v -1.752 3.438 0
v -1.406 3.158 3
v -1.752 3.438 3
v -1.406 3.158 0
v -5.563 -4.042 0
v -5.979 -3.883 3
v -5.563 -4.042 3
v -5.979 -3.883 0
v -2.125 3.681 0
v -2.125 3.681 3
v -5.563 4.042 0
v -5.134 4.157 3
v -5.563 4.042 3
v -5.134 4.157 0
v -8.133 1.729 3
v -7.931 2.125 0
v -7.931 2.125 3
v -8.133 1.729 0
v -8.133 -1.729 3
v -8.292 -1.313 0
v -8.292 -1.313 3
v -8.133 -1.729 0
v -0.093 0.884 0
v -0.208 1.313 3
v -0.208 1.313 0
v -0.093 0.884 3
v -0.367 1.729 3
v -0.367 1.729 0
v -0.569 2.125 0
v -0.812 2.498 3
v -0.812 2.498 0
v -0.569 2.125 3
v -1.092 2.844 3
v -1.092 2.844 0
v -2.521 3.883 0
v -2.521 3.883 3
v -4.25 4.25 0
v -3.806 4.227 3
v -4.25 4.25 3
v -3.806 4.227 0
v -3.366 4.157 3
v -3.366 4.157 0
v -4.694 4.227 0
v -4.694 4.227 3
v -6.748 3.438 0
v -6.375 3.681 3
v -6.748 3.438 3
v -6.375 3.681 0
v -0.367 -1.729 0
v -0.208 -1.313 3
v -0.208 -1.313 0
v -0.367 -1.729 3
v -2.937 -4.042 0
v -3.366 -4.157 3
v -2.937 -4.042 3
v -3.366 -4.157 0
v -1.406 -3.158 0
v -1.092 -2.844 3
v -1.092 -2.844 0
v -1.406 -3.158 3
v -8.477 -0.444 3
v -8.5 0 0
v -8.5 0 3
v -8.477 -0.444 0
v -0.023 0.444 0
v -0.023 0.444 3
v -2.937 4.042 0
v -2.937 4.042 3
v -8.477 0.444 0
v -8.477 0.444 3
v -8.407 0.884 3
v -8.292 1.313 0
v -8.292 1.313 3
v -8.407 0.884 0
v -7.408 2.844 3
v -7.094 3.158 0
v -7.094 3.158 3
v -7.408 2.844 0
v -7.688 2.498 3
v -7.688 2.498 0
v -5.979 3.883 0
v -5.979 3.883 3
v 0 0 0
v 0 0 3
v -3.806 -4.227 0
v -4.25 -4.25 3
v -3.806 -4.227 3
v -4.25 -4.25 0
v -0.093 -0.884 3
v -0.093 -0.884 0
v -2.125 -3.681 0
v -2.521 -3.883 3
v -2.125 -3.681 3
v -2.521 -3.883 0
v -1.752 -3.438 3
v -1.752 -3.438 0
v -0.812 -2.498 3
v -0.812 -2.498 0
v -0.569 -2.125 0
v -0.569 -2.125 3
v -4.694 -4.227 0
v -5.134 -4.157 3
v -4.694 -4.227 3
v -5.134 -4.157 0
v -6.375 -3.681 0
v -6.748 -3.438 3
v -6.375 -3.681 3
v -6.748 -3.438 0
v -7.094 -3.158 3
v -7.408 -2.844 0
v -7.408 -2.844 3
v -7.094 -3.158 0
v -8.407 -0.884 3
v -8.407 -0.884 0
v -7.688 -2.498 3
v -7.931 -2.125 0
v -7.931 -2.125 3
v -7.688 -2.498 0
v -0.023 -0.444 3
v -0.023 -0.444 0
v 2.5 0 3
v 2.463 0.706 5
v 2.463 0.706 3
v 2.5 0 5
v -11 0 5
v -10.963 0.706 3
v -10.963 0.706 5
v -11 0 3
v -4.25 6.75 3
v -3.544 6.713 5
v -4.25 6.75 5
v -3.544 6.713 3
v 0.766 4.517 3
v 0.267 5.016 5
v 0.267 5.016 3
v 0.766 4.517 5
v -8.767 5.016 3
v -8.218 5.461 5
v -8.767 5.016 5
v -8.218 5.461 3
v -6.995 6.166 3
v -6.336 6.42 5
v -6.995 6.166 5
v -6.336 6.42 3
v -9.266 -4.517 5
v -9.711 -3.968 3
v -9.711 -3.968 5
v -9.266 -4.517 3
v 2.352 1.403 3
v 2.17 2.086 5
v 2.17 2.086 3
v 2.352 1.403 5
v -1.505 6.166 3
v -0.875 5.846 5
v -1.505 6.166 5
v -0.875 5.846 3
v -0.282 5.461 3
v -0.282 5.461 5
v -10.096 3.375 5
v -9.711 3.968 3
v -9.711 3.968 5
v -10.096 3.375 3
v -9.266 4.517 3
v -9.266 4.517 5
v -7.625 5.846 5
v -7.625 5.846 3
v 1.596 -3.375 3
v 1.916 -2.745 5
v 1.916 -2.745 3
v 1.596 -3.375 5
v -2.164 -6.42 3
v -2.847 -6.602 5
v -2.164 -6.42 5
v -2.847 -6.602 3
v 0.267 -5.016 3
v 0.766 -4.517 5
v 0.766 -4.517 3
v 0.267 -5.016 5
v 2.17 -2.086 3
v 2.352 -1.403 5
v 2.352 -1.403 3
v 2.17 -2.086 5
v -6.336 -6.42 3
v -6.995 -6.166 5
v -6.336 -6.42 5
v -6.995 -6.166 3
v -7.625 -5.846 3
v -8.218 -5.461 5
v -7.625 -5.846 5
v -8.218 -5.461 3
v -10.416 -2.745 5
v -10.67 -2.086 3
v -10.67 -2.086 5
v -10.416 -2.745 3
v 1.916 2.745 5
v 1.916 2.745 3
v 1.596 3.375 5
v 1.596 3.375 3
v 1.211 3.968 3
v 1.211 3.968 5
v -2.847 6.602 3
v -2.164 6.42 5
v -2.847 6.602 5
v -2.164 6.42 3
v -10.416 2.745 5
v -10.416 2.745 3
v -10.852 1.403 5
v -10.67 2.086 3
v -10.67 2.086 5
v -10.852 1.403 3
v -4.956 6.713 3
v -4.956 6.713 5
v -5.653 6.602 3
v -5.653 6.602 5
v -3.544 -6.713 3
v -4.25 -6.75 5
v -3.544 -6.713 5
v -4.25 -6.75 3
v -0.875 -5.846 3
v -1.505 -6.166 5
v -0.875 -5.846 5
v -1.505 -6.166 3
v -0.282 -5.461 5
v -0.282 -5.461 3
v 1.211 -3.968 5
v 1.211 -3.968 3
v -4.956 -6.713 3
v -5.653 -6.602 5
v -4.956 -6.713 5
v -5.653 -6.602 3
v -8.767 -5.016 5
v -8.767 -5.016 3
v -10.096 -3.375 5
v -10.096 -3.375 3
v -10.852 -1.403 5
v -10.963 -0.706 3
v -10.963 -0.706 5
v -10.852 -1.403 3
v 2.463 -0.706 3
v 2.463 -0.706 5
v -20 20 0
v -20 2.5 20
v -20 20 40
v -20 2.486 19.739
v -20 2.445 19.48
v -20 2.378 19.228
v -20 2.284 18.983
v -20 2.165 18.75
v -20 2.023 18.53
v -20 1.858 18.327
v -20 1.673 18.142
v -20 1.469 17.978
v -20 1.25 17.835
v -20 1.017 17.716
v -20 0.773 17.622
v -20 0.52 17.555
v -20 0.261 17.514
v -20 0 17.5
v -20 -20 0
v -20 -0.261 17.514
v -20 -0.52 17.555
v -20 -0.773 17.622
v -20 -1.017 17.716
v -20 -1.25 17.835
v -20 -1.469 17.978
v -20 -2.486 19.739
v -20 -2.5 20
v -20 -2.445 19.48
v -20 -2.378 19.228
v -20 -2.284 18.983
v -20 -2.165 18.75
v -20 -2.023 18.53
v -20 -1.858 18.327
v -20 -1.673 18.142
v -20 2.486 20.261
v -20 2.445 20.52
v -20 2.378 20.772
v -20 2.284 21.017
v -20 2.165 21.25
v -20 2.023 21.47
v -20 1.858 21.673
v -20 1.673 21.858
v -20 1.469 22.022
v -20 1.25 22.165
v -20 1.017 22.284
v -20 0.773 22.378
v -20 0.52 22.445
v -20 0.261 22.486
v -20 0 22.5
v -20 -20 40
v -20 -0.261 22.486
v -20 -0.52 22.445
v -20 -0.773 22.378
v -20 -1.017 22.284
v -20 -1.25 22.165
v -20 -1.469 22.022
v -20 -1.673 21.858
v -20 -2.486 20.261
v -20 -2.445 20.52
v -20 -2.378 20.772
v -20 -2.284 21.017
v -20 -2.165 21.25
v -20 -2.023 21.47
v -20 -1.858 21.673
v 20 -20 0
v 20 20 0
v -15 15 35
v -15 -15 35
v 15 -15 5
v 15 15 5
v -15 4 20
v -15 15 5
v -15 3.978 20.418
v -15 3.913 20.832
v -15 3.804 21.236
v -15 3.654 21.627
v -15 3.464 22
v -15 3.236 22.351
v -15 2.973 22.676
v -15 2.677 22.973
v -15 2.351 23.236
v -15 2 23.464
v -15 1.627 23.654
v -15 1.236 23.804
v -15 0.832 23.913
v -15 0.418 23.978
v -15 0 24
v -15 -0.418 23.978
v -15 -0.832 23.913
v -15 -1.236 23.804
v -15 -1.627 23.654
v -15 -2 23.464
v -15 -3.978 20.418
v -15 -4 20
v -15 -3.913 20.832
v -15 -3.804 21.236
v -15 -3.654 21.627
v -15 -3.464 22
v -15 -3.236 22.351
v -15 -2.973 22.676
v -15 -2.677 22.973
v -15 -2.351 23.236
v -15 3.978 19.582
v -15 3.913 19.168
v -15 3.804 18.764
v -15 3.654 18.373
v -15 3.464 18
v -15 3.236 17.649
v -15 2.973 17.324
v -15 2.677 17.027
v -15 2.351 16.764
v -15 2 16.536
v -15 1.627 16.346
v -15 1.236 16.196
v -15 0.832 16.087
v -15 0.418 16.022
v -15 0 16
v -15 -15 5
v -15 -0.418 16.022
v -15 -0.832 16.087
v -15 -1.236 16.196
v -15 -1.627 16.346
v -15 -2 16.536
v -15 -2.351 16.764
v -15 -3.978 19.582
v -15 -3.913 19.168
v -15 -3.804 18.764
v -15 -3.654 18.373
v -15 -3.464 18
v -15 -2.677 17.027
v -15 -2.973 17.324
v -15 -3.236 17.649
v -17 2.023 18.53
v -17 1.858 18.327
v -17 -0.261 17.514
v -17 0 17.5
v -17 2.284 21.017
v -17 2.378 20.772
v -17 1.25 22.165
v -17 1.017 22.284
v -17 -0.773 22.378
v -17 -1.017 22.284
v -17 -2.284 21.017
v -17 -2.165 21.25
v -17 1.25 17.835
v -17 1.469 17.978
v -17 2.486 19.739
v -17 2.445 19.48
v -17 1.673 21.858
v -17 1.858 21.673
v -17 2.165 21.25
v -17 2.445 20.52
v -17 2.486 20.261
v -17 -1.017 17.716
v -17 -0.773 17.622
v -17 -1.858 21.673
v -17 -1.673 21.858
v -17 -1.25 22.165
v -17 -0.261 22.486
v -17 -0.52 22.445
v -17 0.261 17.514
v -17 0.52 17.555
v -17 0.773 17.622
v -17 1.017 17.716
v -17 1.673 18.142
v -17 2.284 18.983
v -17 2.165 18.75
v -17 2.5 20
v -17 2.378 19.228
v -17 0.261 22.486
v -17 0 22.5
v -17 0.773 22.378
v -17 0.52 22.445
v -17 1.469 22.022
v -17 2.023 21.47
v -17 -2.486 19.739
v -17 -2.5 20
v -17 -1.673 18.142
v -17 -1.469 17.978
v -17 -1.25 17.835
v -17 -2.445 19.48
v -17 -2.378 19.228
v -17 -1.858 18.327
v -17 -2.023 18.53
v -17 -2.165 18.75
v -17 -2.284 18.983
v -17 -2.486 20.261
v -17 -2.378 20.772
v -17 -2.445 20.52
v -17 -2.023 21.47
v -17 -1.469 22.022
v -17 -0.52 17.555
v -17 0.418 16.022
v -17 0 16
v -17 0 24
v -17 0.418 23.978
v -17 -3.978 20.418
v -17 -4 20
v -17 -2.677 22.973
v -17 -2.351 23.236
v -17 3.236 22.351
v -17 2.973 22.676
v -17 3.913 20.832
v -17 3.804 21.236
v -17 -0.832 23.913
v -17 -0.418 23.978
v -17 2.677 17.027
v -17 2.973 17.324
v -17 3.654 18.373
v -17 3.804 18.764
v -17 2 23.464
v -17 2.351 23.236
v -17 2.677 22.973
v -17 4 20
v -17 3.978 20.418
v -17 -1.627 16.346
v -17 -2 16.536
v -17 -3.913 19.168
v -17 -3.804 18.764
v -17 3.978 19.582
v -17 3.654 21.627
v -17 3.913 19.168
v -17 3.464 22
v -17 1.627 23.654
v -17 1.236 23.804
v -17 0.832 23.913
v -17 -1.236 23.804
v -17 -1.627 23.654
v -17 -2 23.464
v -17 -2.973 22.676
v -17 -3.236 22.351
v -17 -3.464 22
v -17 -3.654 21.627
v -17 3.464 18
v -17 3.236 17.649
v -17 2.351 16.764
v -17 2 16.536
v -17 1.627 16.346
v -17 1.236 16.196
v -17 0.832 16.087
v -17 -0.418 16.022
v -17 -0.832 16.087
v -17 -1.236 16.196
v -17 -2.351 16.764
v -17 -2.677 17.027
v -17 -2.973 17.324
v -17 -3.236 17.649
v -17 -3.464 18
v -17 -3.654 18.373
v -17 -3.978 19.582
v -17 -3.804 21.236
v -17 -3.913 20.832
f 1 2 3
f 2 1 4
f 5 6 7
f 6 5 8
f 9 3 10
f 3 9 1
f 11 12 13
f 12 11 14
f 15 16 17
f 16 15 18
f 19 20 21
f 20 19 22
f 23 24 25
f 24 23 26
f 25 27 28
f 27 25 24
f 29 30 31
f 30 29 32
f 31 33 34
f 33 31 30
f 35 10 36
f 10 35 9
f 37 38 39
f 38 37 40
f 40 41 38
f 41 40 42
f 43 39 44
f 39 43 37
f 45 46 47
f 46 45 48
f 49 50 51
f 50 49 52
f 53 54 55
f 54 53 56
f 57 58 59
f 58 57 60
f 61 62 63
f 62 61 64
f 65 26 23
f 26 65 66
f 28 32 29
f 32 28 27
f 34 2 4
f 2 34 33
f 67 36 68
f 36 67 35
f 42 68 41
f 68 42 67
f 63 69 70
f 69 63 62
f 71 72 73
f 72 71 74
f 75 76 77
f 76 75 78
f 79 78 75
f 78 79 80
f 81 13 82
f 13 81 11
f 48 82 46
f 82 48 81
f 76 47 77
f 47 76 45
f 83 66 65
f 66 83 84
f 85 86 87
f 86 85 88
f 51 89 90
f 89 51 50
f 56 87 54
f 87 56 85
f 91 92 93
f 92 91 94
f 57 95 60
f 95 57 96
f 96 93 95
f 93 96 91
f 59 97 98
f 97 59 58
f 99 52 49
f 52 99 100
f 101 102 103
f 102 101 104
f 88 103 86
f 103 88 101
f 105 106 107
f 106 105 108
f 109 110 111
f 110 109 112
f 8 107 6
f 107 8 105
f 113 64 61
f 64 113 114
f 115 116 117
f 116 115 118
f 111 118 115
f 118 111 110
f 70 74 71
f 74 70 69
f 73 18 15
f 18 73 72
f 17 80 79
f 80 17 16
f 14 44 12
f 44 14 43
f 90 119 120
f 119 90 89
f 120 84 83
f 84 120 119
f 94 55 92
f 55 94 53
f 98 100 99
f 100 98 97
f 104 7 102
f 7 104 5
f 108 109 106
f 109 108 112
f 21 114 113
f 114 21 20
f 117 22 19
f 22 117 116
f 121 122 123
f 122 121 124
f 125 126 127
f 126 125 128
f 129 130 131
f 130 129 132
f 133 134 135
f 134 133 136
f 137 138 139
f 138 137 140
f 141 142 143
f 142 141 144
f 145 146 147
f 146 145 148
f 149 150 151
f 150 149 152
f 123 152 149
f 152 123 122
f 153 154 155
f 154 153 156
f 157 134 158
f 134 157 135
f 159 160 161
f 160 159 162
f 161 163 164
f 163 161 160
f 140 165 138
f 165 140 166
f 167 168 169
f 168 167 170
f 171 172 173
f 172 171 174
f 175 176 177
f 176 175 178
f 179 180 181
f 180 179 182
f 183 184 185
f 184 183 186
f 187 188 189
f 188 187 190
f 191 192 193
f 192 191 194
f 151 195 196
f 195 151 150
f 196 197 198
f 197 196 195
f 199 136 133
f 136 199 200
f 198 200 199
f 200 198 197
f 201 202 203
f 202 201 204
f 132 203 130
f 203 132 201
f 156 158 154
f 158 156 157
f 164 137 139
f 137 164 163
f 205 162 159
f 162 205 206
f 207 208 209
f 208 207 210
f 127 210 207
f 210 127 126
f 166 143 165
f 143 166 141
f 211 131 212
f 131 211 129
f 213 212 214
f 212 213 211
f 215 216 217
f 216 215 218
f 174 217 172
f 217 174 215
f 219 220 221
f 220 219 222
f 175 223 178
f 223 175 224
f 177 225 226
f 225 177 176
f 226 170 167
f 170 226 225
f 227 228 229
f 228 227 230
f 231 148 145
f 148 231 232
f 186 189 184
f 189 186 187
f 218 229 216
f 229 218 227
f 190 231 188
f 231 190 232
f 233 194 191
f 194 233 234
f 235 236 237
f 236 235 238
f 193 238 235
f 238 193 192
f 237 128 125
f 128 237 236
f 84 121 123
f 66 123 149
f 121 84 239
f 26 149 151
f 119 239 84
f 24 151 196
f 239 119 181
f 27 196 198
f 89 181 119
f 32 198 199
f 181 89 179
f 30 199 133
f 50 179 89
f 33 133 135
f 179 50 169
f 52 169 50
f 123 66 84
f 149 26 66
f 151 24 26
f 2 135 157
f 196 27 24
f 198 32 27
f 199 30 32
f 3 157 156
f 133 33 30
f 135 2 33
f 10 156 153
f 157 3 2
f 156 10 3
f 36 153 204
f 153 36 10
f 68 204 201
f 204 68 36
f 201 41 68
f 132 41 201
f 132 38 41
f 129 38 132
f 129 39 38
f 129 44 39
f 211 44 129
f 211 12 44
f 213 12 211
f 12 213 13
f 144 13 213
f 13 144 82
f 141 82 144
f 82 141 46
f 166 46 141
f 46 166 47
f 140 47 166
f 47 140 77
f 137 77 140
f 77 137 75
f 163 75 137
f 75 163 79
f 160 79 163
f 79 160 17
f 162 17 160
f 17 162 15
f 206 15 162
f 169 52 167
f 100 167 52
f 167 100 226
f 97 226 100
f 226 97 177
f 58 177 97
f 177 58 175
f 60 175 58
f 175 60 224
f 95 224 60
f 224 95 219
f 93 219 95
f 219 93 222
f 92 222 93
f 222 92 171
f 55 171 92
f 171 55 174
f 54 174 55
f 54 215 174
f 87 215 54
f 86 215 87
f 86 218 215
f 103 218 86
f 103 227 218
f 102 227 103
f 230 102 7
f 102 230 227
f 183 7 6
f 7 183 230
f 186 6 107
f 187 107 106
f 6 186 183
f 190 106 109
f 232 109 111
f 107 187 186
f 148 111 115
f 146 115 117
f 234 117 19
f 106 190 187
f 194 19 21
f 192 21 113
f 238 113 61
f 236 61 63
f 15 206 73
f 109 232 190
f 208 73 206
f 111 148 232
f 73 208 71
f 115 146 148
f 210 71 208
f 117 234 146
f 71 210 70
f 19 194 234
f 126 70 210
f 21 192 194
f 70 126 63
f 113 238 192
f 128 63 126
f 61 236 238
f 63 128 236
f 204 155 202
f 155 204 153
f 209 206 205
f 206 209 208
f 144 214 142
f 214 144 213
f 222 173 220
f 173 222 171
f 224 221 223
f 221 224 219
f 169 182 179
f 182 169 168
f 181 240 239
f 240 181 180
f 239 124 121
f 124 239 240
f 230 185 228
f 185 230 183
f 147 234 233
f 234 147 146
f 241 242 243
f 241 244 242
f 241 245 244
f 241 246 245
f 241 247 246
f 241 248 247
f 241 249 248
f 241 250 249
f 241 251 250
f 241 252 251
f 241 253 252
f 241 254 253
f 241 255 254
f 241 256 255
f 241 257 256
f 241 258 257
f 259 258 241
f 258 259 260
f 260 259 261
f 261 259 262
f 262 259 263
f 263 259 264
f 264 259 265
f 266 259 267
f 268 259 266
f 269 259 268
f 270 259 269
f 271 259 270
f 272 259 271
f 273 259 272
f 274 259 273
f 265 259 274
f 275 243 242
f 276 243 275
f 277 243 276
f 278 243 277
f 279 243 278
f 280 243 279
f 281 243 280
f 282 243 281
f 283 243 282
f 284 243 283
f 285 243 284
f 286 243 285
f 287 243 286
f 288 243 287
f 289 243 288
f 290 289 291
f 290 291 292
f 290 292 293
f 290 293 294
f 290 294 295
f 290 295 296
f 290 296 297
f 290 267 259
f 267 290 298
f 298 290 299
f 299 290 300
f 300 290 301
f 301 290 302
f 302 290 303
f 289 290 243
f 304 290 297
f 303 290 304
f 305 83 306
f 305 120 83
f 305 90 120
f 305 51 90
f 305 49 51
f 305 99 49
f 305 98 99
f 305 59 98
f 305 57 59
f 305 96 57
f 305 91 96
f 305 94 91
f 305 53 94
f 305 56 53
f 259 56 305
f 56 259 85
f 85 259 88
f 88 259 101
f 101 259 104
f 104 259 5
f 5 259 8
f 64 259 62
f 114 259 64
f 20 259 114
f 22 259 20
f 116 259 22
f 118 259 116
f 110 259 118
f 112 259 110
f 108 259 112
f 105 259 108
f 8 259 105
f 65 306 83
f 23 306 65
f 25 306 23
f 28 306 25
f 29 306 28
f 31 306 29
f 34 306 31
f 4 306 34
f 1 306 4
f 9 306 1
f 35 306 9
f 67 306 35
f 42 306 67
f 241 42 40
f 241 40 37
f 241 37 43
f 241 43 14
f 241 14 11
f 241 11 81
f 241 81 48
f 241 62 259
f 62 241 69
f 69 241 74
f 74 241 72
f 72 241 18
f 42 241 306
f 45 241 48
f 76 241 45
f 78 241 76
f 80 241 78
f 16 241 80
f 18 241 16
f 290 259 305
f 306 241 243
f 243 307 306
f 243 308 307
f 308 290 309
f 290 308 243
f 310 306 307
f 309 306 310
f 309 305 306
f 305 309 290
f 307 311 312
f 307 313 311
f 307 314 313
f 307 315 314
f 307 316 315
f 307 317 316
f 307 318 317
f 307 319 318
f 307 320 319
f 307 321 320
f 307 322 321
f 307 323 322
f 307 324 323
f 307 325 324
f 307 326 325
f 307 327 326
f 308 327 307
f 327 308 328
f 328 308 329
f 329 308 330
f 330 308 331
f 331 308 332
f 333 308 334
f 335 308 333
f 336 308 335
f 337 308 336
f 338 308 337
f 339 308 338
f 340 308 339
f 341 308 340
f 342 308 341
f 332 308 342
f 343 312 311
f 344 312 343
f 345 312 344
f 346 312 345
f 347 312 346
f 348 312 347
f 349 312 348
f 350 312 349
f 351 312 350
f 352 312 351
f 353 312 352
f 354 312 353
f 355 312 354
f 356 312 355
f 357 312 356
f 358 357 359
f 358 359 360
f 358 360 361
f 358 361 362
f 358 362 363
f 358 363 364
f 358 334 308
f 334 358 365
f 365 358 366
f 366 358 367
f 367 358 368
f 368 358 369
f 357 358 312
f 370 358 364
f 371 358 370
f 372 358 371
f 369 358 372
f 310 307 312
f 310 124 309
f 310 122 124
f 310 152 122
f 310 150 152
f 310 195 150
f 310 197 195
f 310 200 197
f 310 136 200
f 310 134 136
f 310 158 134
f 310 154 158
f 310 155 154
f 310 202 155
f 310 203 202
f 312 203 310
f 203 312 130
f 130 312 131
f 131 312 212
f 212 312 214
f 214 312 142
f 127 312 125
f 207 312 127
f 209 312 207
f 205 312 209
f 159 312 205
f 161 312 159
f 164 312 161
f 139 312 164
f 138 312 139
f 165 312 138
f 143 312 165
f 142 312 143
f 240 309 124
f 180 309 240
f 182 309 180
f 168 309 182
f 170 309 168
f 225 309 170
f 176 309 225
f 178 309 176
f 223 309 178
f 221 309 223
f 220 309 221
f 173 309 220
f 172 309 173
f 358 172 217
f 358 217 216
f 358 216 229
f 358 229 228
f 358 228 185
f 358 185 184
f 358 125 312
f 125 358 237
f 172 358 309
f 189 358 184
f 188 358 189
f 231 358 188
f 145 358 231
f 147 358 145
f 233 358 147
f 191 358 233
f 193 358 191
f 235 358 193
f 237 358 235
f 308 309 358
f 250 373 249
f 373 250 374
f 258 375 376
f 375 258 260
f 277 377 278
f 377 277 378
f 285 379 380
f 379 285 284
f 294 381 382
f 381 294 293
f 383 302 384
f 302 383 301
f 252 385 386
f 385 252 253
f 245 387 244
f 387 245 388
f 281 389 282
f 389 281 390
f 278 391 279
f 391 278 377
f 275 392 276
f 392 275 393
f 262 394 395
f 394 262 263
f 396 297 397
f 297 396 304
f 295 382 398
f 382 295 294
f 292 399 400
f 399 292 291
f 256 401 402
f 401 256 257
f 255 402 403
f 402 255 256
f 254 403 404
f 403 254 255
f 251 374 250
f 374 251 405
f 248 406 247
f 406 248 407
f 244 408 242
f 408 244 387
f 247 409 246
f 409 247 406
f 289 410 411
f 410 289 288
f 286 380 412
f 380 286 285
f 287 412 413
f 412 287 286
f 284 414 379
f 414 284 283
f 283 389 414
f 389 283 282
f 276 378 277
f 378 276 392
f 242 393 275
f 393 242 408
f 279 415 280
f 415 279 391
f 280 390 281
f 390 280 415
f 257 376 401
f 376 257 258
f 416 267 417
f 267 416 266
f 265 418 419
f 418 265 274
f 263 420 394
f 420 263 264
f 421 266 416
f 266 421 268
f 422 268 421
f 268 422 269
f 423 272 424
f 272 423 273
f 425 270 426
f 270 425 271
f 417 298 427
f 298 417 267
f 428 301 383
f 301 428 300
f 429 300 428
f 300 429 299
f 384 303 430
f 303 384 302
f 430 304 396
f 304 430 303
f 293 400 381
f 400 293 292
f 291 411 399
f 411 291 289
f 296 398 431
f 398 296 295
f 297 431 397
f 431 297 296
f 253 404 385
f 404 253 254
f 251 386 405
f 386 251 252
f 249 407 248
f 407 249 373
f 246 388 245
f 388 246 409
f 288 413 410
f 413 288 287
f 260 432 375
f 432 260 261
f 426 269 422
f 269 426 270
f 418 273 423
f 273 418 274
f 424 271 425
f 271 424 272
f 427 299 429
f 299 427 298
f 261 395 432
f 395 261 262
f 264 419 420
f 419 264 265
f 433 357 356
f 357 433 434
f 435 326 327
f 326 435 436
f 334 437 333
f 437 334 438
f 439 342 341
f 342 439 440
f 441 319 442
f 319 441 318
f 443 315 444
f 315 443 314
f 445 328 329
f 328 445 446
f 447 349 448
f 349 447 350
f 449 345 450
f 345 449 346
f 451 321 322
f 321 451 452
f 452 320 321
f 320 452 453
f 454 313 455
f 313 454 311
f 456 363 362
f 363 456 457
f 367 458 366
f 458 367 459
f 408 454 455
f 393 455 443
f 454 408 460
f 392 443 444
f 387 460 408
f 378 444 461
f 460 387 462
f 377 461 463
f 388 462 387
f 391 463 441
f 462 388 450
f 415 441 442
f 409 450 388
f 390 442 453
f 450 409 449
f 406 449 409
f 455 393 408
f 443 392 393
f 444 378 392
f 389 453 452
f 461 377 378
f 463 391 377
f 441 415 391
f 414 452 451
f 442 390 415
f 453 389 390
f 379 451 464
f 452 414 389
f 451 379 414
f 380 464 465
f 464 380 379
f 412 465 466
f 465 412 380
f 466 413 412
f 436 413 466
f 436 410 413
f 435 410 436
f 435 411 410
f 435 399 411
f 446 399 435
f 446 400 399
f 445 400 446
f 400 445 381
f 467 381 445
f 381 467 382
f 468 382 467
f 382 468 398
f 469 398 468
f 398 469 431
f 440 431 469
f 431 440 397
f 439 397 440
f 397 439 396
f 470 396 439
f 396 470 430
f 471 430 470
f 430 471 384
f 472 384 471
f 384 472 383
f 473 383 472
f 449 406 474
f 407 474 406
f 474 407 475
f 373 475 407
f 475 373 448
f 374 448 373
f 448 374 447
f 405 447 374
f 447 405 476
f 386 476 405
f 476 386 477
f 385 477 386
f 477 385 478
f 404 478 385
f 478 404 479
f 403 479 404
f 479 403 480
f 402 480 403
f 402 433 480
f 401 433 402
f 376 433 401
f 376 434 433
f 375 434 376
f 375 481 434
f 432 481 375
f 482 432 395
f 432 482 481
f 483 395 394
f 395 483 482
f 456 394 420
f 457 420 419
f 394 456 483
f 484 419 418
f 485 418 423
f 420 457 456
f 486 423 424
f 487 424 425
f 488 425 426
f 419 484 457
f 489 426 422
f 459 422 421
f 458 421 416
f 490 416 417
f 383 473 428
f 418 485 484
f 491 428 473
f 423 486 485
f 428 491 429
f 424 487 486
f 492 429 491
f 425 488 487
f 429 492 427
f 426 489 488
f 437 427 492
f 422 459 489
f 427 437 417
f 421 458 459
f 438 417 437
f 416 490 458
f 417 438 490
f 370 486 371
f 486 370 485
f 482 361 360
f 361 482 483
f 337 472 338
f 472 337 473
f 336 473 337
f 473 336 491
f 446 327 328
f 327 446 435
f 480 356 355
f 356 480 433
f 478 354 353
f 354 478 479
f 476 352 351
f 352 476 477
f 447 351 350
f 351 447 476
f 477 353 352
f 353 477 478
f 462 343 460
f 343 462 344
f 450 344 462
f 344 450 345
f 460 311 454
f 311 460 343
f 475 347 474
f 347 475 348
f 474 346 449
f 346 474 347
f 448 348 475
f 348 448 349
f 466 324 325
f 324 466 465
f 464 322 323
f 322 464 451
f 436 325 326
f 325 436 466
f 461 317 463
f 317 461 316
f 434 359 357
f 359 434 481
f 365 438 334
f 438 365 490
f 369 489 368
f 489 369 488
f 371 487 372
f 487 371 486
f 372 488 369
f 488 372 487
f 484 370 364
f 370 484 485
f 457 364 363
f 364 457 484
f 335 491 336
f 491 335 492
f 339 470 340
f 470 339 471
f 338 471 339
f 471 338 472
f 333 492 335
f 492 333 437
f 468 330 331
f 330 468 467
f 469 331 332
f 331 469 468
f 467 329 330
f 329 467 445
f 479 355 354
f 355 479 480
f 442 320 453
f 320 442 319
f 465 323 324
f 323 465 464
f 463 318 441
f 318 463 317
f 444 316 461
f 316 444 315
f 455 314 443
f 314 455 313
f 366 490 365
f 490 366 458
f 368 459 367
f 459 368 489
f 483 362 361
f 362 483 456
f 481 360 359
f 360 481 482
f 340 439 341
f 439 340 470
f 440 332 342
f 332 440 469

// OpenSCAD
// Solarhalterung

a = 40;
Dreieck = true;
Doppeldreieck = false;

module Loch() {
    $fn=60;
    cylinder(d=8.5,h=10, center=true);
    translate([0,0,5])
    cylinder(d=13.5,h=10, center=true);
   
}

module Doppeldreieck() {
    
    difference(){
        union() {
            Dreieck();
            translate([0,37,0])
            Dreieck();
        }
        translate([5,17,5])
        cube([a,a-10,a],center=true);
    }
}    

module Dreieck() {
    
    difference() {
        cube([a,a,a],center=true);
        
        rotate([0,-45,0])
        translate([(a+25)/2,0,0])
        cube([a+25,a+25,a+25],center=true);
        
        translate([5,0,5])
        cube([a,a-10,a],center=true);
        
        translate([-4.25,0,-17])
        Loch();
        
        
        rotate([0,90,0])
        translate([0,0,-20])
        cylinder(d=5,h=20,center=true,$fn=60);
        
        rotate([0,90,0])
        translate([0,0,-7])
        cylinder(d=8,h=20,center=true,$fn=60);
    }
}

//translate([-10,0,-10])
//cube([20,40,20],center=true);

if (Dreieck)
translate([0,0,20])
Dreieck();

if (Doppeldreieck)
translate([0,0,20])
Doppeldreieck();
